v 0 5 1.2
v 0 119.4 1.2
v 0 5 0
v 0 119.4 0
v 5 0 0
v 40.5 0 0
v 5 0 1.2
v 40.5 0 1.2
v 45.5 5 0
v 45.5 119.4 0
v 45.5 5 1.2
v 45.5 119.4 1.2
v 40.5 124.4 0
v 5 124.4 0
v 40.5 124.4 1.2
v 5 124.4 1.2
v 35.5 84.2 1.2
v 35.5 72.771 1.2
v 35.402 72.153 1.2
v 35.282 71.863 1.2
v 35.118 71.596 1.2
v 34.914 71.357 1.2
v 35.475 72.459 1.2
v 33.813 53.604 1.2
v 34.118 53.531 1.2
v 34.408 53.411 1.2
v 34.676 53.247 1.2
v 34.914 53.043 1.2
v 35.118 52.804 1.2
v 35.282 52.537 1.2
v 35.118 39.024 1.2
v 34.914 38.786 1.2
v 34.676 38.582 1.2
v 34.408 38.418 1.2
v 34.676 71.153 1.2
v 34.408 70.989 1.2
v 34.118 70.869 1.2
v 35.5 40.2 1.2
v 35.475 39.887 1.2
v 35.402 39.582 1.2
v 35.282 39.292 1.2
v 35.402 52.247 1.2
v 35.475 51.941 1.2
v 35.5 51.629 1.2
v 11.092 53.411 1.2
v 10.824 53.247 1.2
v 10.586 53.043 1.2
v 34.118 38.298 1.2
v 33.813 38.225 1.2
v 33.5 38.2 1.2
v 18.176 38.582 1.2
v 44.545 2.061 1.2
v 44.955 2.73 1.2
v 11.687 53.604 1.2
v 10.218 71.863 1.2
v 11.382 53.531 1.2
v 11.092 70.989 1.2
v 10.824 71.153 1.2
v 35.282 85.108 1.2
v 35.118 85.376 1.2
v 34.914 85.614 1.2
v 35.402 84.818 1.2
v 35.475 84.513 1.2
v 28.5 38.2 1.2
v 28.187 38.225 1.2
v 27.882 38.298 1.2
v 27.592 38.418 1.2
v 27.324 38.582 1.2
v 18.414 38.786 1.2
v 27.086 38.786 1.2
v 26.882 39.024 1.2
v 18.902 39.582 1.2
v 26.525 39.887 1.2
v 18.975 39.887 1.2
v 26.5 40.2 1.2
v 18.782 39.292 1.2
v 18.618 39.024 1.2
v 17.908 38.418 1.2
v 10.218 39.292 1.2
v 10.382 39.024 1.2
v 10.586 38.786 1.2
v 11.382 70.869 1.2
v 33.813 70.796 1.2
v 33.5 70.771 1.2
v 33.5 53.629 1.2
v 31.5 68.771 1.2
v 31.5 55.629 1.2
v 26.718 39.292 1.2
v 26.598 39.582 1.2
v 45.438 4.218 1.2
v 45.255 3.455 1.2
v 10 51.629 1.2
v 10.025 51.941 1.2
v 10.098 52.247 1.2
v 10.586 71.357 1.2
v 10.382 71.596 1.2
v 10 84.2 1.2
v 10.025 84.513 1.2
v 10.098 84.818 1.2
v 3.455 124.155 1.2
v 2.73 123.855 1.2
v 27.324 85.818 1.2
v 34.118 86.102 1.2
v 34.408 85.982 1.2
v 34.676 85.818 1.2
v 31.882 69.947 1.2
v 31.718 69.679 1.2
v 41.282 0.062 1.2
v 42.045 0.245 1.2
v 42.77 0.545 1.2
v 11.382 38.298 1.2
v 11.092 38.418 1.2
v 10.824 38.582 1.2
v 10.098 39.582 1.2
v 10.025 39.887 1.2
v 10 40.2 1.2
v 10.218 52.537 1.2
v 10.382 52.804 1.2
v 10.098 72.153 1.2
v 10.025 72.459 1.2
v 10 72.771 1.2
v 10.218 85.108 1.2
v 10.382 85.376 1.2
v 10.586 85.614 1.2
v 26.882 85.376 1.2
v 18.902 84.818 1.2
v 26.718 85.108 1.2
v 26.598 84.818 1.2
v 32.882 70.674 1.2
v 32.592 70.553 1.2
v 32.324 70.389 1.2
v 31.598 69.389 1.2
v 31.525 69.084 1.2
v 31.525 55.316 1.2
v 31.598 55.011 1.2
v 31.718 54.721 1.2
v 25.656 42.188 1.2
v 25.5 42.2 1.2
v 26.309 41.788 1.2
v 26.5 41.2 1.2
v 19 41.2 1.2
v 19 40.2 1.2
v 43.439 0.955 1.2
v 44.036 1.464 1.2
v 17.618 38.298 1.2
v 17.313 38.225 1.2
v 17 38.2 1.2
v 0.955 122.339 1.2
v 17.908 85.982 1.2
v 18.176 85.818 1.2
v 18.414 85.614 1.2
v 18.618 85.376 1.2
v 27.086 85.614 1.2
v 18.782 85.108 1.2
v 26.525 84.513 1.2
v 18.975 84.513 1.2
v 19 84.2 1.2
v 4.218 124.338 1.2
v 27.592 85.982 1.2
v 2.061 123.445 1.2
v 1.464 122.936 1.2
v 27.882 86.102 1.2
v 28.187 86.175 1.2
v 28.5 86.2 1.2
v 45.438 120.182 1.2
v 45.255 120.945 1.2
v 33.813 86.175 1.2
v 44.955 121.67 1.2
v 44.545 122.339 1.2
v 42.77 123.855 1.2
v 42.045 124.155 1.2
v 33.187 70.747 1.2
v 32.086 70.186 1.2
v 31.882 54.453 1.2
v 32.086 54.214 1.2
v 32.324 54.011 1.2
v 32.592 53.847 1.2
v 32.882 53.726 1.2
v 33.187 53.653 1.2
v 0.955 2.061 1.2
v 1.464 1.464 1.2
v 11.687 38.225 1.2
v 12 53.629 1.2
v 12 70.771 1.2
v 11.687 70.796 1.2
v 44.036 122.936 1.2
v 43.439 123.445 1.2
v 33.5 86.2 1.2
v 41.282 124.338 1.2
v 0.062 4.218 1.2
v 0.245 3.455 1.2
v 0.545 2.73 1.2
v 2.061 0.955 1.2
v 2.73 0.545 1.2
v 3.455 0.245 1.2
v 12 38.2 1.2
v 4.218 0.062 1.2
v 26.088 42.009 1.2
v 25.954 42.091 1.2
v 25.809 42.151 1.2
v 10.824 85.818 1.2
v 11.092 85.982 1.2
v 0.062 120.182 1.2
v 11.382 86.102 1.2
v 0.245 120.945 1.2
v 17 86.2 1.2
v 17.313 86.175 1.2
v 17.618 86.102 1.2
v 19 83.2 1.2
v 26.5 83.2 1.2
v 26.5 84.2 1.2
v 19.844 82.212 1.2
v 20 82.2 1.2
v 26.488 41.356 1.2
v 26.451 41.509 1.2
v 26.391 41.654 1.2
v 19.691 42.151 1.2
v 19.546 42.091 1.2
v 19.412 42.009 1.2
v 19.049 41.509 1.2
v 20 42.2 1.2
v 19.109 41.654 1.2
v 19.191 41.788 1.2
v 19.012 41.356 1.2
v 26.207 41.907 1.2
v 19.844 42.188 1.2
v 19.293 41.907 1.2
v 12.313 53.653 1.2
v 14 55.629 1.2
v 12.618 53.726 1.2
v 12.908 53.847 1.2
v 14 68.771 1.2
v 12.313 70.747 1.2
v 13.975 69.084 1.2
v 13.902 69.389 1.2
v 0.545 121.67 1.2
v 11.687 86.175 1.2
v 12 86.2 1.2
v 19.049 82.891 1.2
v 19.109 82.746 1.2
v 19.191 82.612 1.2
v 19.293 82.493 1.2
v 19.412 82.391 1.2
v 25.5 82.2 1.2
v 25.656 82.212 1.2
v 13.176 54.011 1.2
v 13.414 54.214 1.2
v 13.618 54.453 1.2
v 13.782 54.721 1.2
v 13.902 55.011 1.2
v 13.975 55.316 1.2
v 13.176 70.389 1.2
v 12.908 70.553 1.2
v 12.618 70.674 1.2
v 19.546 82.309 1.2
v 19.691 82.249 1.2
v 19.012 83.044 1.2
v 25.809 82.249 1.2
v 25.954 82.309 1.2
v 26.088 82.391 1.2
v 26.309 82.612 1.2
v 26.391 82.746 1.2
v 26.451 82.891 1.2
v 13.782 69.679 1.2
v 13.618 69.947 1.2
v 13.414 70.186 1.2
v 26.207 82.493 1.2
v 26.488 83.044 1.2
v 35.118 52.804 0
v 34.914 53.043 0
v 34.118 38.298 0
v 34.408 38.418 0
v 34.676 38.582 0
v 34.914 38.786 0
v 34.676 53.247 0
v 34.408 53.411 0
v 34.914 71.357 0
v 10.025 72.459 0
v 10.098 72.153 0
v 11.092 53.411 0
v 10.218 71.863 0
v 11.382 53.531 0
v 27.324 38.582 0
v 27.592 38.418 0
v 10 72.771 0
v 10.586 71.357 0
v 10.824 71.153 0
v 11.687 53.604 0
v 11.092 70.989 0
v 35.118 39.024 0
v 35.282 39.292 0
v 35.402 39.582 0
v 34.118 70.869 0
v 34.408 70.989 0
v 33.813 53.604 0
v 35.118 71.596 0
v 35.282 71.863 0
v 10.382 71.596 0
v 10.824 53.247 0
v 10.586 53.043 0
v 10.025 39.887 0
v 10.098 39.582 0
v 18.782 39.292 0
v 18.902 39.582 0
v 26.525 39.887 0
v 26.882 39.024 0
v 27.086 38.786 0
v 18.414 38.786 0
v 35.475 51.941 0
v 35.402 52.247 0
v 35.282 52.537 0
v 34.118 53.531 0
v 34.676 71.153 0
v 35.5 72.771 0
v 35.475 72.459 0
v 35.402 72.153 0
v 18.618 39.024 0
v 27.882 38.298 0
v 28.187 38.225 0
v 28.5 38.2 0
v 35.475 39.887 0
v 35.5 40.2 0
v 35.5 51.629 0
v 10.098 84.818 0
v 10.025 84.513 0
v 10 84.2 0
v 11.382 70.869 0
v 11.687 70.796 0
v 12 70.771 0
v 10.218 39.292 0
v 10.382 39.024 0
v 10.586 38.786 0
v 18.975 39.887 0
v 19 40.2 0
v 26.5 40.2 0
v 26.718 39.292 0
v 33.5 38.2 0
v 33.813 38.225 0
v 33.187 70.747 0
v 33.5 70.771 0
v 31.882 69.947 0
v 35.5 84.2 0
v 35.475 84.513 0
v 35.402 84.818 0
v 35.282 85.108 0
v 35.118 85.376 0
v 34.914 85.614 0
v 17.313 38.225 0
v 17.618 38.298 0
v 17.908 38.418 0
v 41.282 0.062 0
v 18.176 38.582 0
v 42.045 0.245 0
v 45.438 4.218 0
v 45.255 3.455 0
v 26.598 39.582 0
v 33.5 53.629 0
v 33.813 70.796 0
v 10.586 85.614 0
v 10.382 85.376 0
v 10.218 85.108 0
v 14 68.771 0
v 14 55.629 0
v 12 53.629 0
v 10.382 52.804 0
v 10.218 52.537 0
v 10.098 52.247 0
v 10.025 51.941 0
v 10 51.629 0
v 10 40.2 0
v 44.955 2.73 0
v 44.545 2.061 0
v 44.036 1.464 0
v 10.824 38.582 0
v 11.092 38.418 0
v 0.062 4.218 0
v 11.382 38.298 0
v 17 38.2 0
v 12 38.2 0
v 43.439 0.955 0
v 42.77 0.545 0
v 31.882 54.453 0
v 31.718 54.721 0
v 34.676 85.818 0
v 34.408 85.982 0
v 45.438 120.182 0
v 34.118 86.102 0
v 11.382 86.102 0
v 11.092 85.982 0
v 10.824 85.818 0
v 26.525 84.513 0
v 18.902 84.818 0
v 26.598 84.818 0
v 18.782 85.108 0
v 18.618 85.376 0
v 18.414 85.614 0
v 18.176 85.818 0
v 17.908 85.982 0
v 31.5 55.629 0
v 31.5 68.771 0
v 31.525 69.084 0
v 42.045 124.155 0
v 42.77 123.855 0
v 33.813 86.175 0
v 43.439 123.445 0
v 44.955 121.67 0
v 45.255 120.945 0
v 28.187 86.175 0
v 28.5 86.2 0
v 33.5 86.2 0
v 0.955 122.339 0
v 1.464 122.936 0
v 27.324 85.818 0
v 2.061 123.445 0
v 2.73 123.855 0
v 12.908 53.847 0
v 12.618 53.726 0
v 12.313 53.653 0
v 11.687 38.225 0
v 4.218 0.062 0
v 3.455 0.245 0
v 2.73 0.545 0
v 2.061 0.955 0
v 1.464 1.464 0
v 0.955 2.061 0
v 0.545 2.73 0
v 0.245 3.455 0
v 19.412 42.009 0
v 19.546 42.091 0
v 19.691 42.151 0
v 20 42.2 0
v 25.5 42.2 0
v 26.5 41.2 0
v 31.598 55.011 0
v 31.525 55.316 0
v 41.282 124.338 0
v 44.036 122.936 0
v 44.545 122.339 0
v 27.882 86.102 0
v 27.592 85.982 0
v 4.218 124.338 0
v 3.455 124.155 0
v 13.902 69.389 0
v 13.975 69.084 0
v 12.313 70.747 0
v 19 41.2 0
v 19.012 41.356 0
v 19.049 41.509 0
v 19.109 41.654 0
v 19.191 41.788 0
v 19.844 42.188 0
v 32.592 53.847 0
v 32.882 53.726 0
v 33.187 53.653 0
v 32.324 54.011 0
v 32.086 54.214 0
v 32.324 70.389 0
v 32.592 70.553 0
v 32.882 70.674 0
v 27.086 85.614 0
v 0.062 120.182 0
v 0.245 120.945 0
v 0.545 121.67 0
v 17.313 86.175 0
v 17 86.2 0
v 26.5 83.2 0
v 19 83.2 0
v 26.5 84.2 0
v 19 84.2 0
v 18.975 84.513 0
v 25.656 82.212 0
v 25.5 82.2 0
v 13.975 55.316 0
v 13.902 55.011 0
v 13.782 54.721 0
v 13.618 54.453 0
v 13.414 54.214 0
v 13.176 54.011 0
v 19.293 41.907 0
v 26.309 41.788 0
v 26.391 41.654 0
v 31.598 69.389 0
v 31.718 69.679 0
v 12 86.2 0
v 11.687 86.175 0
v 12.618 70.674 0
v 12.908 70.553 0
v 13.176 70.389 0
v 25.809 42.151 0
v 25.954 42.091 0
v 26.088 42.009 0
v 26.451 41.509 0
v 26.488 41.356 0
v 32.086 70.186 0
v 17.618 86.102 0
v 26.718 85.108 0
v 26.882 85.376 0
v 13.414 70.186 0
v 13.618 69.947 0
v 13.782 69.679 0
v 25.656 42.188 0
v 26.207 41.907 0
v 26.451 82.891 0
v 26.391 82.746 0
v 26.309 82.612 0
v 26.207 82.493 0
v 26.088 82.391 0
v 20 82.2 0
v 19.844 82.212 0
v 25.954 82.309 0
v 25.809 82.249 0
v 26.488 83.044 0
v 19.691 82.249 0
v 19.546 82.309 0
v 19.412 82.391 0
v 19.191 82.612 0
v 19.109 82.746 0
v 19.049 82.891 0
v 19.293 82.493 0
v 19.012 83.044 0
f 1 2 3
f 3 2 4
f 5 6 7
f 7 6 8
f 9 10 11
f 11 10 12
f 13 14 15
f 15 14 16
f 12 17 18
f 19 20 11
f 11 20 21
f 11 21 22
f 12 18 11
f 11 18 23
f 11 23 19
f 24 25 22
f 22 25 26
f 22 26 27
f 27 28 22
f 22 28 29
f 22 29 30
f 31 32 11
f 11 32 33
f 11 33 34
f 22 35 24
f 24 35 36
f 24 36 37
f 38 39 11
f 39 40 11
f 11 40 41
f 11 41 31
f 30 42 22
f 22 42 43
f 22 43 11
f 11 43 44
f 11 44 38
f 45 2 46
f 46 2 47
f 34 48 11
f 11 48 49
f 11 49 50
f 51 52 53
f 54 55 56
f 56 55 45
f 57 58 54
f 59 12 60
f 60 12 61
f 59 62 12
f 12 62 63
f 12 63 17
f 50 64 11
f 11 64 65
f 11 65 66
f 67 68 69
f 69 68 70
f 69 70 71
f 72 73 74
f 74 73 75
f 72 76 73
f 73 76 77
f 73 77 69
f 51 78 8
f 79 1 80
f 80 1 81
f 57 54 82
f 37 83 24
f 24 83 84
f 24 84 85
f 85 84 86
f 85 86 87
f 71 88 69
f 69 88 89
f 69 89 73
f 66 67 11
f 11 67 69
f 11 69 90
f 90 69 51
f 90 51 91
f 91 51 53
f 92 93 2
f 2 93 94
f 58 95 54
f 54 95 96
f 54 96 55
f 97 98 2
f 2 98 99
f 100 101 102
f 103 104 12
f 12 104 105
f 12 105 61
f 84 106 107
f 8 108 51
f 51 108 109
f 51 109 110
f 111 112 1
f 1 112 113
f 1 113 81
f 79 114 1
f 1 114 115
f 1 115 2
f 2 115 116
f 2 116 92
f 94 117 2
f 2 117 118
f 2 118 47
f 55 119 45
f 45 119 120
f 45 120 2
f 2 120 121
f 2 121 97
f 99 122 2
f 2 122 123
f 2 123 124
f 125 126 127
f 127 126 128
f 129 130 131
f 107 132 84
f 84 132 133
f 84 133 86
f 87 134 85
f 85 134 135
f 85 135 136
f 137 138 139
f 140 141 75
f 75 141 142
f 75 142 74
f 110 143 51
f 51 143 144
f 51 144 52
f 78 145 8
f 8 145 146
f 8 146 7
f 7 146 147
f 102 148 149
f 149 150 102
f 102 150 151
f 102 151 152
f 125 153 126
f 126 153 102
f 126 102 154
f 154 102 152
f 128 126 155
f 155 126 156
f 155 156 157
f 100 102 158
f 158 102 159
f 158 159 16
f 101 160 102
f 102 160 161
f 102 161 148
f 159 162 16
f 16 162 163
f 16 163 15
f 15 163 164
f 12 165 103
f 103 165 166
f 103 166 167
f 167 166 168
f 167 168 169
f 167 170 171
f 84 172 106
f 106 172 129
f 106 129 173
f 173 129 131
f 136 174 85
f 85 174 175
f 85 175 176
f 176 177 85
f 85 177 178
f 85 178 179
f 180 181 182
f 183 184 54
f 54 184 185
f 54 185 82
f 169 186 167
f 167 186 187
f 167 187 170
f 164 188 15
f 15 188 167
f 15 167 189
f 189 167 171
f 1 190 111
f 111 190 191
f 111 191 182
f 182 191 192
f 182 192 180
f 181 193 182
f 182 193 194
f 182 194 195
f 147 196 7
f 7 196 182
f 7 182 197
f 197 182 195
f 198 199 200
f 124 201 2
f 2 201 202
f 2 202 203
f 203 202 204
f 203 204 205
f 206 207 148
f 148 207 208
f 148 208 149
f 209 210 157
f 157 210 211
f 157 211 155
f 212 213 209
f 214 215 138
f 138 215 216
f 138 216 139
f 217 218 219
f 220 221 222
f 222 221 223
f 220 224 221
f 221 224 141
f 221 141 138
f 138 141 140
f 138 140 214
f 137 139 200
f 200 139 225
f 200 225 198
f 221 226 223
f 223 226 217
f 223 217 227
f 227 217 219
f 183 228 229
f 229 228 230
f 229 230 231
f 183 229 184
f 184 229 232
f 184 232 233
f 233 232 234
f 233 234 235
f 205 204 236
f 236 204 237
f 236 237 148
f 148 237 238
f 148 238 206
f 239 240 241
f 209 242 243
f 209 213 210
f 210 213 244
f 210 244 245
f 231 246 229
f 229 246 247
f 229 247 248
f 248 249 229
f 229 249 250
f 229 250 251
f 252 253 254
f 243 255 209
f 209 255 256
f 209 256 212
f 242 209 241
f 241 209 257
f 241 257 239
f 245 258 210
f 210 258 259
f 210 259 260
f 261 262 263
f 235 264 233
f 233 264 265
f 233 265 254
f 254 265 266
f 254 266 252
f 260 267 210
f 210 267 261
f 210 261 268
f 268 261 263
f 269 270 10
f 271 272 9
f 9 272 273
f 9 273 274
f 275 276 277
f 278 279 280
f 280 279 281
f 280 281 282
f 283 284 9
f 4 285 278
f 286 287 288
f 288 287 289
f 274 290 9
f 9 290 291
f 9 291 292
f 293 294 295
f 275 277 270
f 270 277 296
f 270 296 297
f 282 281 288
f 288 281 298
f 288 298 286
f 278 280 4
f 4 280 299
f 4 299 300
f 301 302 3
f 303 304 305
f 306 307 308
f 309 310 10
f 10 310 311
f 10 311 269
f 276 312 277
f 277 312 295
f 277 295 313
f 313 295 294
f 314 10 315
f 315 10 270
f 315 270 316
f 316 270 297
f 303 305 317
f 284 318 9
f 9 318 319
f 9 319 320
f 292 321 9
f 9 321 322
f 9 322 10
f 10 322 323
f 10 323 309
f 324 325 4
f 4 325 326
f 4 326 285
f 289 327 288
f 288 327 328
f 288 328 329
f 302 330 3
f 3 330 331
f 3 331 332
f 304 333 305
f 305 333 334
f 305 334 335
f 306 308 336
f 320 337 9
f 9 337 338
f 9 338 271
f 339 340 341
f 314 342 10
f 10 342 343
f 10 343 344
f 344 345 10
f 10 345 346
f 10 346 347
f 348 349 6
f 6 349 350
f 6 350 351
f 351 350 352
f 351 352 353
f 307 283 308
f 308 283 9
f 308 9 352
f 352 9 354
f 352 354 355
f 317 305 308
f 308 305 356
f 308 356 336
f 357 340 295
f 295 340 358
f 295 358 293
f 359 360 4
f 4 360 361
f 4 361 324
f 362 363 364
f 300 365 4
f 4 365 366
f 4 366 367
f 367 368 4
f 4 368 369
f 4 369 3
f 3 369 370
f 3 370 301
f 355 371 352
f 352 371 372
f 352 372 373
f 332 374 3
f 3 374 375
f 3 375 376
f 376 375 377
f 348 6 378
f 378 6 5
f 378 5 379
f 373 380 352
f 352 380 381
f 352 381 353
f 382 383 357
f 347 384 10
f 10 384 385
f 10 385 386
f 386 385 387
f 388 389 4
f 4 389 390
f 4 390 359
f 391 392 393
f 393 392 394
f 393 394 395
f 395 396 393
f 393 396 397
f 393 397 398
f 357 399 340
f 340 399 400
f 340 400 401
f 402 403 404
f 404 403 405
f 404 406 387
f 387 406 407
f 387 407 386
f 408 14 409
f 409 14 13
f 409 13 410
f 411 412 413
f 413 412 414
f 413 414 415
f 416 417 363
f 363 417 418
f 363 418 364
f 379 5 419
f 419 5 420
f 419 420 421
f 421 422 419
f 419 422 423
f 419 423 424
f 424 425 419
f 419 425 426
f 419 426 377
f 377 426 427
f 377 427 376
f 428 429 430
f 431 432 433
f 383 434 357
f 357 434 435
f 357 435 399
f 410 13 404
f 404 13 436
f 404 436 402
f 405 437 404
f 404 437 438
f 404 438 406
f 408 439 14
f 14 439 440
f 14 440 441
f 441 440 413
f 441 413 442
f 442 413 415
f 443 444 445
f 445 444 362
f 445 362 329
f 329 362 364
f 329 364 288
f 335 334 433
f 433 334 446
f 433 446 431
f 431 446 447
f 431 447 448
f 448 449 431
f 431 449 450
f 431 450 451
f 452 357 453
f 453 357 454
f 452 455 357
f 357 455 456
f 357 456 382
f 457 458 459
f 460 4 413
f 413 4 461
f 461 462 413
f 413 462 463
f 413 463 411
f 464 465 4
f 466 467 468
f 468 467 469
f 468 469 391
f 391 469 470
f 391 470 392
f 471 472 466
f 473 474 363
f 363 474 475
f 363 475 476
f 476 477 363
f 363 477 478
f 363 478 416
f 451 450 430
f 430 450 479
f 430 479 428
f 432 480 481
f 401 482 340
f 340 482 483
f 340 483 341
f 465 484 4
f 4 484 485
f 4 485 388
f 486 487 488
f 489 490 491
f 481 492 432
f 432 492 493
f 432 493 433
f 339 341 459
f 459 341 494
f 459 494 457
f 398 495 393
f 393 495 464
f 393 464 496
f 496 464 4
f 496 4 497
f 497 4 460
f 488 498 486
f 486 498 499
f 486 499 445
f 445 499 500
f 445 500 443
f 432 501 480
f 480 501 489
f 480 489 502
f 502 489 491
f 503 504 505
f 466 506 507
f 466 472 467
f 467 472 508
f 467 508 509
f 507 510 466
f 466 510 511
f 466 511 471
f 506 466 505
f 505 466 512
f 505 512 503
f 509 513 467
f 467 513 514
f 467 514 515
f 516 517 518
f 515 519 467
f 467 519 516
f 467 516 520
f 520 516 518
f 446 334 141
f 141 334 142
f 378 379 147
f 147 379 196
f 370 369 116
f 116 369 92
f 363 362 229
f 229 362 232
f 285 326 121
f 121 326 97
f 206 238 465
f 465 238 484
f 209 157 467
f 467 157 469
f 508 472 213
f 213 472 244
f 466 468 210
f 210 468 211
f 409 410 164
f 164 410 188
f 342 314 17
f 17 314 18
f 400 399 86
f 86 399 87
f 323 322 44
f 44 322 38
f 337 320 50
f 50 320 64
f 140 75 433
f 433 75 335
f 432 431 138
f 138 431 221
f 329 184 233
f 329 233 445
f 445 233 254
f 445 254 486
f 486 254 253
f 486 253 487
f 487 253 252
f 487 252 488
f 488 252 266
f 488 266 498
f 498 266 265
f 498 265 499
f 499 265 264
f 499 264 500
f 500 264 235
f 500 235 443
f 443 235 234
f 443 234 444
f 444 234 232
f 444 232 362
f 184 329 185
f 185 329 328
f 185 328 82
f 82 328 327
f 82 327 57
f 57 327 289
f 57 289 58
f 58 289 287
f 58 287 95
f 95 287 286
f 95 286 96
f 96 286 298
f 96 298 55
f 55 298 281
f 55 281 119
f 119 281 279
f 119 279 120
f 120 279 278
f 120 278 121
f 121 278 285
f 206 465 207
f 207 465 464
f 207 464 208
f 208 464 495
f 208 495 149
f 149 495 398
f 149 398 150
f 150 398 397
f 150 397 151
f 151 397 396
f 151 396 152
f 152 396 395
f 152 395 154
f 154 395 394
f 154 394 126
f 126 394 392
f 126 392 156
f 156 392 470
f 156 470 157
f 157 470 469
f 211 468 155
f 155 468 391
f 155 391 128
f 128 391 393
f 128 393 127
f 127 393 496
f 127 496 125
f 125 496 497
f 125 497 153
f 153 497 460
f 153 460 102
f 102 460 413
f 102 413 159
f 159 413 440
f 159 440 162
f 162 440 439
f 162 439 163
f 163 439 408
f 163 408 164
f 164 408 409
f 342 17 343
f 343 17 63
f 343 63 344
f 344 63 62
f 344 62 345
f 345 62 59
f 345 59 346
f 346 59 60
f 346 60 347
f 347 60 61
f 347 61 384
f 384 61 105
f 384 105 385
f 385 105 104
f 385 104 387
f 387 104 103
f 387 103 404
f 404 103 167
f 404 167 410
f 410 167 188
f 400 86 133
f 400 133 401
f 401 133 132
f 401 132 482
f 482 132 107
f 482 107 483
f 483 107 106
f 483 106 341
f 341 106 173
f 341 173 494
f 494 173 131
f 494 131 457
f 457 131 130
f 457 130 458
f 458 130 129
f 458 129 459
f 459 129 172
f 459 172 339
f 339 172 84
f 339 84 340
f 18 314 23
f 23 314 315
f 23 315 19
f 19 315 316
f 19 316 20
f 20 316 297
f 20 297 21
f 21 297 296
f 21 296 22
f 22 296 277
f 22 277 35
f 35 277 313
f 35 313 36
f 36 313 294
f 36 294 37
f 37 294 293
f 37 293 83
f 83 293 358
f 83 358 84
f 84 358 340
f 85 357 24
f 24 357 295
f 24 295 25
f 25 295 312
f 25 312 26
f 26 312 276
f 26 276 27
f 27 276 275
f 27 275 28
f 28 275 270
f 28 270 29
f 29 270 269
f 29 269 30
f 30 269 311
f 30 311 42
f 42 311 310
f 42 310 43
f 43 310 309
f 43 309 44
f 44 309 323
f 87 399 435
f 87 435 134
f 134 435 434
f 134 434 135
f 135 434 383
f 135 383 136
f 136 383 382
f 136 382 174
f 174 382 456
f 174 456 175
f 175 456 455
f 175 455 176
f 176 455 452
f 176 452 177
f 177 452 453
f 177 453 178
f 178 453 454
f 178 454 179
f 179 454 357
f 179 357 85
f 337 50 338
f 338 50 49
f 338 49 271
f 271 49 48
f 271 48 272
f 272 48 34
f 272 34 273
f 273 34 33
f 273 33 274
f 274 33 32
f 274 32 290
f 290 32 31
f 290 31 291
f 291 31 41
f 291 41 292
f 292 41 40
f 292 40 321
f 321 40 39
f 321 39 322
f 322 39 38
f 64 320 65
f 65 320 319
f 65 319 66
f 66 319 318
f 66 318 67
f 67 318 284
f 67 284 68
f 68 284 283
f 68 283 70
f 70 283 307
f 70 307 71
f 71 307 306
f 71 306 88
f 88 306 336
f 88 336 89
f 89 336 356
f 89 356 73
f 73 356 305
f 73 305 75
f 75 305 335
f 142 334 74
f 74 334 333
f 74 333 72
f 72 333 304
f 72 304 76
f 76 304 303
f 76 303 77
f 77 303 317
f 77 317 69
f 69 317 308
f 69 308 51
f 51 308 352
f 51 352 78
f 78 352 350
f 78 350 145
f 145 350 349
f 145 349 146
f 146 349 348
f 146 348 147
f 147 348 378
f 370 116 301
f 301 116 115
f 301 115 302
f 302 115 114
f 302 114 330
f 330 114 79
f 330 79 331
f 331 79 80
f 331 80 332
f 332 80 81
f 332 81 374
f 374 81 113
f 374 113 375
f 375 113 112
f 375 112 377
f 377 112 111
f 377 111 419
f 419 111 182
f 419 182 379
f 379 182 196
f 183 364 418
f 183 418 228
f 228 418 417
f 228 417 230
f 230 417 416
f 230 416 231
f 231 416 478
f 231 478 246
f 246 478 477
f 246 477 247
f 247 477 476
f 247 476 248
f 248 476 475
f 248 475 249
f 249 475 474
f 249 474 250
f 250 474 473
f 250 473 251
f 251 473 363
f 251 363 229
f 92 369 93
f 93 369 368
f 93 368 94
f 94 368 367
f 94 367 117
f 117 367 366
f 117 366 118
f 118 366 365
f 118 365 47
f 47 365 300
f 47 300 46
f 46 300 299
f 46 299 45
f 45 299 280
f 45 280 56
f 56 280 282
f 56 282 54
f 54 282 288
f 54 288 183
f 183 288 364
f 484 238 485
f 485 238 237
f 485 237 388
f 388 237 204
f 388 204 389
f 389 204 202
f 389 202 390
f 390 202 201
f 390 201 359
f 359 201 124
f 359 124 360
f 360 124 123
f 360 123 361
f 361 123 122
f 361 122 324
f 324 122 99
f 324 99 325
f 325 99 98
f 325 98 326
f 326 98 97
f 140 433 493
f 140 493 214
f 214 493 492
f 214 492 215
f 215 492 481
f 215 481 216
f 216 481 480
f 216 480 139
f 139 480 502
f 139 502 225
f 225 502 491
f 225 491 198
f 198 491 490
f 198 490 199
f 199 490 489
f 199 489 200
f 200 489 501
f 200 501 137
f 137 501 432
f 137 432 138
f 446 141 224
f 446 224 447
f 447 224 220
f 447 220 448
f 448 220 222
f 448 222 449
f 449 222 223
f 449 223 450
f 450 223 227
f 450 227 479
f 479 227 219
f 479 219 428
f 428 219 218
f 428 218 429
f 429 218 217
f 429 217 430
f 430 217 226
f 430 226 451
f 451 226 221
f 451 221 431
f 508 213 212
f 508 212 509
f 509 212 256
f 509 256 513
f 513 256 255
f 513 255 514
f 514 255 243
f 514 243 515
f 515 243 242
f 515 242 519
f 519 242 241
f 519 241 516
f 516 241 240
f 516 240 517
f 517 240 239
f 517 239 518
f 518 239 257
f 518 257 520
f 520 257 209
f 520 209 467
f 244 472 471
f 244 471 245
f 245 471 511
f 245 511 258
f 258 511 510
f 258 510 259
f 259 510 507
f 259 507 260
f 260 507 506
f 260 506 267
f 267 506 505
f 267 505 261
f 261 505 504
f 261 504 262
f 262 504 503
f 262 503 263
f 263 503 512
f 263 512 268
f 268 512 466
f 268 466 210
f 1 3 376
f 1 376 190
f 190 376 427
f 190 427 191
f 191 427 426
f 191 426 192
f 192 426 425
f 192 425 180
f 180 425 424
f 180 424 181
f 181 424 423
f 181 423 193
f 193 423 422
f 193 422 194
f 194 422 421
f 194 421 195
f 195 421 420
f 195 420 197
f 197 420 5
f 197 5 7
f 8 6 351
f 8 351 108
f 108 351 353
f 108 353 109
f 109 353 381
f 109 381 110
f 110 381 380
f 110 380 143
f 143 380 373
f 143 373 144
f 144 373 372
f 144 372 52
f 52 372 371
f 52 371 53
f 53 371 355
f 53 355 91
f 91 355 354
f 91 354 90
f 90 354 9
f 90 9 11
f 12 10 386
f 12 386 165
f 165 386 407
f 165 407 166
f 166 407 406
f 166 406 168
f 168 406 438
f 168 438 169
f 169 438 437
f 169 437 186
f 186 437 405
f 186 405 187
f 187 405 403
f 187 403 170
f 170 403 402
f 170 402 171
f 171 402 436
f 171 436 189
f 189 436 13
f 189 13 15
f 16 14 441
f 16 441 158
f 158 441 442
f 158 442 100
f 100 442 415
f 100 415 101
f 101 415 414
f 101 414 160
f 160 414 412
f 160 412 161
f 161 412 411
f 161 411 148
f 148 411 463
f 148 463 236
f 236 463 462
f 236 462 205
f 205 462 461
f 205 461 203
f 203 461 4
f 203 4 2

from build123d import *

# Parameters (mm, degrees)
SKETCH1_W           = 45.5
SKETCH1_H           = 124.4
BOSS_EXTRUDE1_DEPTH = 1.2
SKETCH2_W           = 5
SKETCH2_H           = 11.428571429
CUT_EXTRUDE1_DEPTH  = 1.6
FILLET1_R           = 2
FILLET2_R           = 1
FILLET3_R           = 5


with BuildPart() as part:
    # Sketch1 → Boss-Extrude1 (new body)
    with BuildSketch(Plane.XY):
        with Locations((22.75, 62.2)):
            Rectangle(SKETCH1_W, SKETCH1_H)
    extrude(amount=BOSS_EXTRUDE1_DEPTH)

    # Sketch2 → Cut-Extrude1 (cut)
    with BuildSketch(Plane.XY.offset(1.2)):
        Polygon((14, 82.2), (19, 82.2), (19, 86.2), (10, 86.2), (10, 70.771428571), (14, 70.771428571), align=None)
        with Locations((16.5, 76.485714285)):
            Rectangle(SKETCH2_W, SKETCH2_H)
        Polygon((26.5, 70.771428571), (26.5, 82.2), (19, 82.2), (19, 70.771428571), (14, 70.771428571), (14, 53.628571429), (19, 53.628571429), (19, 42.2), (26.5, 42.2), (26.5, 53.628571429), (31.5, 53.628571429), (31.5, 70.771428571), align=None)
        with Locations((29, 76.485714285)):
            Rectangle(SKETCH2_W, SKETCH2_H)
        Polygon((35.5, 70.771428571), (35.5, 86.2), (26.5, 86.2), (26.5, 82.2), (31.5, 82.2), (31.5, 70.771428571), align=None)
        Polygon((35.5, 53.628571429), (31.5, 53.628571429), (31.5, 42.2), (26.5, 42.2), (26.5, 38.2), (35.5, 38.2), align=None)
        with Locations((29, 47.914285715)):
            Rectangle(SKETCH2_W, SKETCH2_H)
        Polygon((14, 42.2), (14, 53.628571429), (10, 53.628571429), (10, 38.2), (19, 38.2), (19, 42.2), align=None)
        with Locations((16.5, 47.914285715)):
            Rectangle(SKETCH2_W, SKETCH2_H)
    extrude(amount=-CUT_EXTRUDE1_DEPTH, mode=Mode.SUBTRACT)

    # Fillet1
    fillet1_edges = [part.edges().sort_by_distance(p)[0] for p in [
        (10, 70.771428571, 0.6),
        (19, 86.2, 0.6),
        (26.5, 86.2, 0.6),
        (35.5, 86.2, 0.6),
        (35.5, 70.771428571, 0.6),
        (31.5, 70.771428571, 0.6),
        (31.5, 53.628571429, 0.6),
        (35.5, 53.628571429, 0.6),
        (35.5, 38.2, 0.6),
        (26.5, 38.2, 0.6),
        (19, 38.2, 0.6),
        (10, 38.2, 0.6),
        (10, 53.628571429, 0.6),
        (14, 53.628571429, 0.6),
        (14, 70.771428571, 0.6),
        (10, 86.2, 0.6),
    ]]
    fillet(fillet1_edges, radius=FILLET1_R - 0.0001)  # a hair under: the kernel refuses the full size

    # Fillet2
    fillet2_edges = [part.edges().sort_by_distance(p)[0] for p in [
        (19, 42.2, 0.6),
        (19, 82.2, 0.6),
        (26.5, 82.2, 0.6),
        (26.5, 42.2, 0.6),
    ]]
    fillet(fillet2_edges, radius=FILLET2_R)

    # Fillet3
    fillet3_edges = [part.edges().sort_by_distance(p)[0] for p in [
        (0, 124.4, 0.6),
        (45.5, 124.4, 0.6),
        (45.5, 0, 0.6),
        (0, 0, 0.6),
    ]]
    fillet(fillet3_edges, radius=FILLET3_R)


solid = part.part
